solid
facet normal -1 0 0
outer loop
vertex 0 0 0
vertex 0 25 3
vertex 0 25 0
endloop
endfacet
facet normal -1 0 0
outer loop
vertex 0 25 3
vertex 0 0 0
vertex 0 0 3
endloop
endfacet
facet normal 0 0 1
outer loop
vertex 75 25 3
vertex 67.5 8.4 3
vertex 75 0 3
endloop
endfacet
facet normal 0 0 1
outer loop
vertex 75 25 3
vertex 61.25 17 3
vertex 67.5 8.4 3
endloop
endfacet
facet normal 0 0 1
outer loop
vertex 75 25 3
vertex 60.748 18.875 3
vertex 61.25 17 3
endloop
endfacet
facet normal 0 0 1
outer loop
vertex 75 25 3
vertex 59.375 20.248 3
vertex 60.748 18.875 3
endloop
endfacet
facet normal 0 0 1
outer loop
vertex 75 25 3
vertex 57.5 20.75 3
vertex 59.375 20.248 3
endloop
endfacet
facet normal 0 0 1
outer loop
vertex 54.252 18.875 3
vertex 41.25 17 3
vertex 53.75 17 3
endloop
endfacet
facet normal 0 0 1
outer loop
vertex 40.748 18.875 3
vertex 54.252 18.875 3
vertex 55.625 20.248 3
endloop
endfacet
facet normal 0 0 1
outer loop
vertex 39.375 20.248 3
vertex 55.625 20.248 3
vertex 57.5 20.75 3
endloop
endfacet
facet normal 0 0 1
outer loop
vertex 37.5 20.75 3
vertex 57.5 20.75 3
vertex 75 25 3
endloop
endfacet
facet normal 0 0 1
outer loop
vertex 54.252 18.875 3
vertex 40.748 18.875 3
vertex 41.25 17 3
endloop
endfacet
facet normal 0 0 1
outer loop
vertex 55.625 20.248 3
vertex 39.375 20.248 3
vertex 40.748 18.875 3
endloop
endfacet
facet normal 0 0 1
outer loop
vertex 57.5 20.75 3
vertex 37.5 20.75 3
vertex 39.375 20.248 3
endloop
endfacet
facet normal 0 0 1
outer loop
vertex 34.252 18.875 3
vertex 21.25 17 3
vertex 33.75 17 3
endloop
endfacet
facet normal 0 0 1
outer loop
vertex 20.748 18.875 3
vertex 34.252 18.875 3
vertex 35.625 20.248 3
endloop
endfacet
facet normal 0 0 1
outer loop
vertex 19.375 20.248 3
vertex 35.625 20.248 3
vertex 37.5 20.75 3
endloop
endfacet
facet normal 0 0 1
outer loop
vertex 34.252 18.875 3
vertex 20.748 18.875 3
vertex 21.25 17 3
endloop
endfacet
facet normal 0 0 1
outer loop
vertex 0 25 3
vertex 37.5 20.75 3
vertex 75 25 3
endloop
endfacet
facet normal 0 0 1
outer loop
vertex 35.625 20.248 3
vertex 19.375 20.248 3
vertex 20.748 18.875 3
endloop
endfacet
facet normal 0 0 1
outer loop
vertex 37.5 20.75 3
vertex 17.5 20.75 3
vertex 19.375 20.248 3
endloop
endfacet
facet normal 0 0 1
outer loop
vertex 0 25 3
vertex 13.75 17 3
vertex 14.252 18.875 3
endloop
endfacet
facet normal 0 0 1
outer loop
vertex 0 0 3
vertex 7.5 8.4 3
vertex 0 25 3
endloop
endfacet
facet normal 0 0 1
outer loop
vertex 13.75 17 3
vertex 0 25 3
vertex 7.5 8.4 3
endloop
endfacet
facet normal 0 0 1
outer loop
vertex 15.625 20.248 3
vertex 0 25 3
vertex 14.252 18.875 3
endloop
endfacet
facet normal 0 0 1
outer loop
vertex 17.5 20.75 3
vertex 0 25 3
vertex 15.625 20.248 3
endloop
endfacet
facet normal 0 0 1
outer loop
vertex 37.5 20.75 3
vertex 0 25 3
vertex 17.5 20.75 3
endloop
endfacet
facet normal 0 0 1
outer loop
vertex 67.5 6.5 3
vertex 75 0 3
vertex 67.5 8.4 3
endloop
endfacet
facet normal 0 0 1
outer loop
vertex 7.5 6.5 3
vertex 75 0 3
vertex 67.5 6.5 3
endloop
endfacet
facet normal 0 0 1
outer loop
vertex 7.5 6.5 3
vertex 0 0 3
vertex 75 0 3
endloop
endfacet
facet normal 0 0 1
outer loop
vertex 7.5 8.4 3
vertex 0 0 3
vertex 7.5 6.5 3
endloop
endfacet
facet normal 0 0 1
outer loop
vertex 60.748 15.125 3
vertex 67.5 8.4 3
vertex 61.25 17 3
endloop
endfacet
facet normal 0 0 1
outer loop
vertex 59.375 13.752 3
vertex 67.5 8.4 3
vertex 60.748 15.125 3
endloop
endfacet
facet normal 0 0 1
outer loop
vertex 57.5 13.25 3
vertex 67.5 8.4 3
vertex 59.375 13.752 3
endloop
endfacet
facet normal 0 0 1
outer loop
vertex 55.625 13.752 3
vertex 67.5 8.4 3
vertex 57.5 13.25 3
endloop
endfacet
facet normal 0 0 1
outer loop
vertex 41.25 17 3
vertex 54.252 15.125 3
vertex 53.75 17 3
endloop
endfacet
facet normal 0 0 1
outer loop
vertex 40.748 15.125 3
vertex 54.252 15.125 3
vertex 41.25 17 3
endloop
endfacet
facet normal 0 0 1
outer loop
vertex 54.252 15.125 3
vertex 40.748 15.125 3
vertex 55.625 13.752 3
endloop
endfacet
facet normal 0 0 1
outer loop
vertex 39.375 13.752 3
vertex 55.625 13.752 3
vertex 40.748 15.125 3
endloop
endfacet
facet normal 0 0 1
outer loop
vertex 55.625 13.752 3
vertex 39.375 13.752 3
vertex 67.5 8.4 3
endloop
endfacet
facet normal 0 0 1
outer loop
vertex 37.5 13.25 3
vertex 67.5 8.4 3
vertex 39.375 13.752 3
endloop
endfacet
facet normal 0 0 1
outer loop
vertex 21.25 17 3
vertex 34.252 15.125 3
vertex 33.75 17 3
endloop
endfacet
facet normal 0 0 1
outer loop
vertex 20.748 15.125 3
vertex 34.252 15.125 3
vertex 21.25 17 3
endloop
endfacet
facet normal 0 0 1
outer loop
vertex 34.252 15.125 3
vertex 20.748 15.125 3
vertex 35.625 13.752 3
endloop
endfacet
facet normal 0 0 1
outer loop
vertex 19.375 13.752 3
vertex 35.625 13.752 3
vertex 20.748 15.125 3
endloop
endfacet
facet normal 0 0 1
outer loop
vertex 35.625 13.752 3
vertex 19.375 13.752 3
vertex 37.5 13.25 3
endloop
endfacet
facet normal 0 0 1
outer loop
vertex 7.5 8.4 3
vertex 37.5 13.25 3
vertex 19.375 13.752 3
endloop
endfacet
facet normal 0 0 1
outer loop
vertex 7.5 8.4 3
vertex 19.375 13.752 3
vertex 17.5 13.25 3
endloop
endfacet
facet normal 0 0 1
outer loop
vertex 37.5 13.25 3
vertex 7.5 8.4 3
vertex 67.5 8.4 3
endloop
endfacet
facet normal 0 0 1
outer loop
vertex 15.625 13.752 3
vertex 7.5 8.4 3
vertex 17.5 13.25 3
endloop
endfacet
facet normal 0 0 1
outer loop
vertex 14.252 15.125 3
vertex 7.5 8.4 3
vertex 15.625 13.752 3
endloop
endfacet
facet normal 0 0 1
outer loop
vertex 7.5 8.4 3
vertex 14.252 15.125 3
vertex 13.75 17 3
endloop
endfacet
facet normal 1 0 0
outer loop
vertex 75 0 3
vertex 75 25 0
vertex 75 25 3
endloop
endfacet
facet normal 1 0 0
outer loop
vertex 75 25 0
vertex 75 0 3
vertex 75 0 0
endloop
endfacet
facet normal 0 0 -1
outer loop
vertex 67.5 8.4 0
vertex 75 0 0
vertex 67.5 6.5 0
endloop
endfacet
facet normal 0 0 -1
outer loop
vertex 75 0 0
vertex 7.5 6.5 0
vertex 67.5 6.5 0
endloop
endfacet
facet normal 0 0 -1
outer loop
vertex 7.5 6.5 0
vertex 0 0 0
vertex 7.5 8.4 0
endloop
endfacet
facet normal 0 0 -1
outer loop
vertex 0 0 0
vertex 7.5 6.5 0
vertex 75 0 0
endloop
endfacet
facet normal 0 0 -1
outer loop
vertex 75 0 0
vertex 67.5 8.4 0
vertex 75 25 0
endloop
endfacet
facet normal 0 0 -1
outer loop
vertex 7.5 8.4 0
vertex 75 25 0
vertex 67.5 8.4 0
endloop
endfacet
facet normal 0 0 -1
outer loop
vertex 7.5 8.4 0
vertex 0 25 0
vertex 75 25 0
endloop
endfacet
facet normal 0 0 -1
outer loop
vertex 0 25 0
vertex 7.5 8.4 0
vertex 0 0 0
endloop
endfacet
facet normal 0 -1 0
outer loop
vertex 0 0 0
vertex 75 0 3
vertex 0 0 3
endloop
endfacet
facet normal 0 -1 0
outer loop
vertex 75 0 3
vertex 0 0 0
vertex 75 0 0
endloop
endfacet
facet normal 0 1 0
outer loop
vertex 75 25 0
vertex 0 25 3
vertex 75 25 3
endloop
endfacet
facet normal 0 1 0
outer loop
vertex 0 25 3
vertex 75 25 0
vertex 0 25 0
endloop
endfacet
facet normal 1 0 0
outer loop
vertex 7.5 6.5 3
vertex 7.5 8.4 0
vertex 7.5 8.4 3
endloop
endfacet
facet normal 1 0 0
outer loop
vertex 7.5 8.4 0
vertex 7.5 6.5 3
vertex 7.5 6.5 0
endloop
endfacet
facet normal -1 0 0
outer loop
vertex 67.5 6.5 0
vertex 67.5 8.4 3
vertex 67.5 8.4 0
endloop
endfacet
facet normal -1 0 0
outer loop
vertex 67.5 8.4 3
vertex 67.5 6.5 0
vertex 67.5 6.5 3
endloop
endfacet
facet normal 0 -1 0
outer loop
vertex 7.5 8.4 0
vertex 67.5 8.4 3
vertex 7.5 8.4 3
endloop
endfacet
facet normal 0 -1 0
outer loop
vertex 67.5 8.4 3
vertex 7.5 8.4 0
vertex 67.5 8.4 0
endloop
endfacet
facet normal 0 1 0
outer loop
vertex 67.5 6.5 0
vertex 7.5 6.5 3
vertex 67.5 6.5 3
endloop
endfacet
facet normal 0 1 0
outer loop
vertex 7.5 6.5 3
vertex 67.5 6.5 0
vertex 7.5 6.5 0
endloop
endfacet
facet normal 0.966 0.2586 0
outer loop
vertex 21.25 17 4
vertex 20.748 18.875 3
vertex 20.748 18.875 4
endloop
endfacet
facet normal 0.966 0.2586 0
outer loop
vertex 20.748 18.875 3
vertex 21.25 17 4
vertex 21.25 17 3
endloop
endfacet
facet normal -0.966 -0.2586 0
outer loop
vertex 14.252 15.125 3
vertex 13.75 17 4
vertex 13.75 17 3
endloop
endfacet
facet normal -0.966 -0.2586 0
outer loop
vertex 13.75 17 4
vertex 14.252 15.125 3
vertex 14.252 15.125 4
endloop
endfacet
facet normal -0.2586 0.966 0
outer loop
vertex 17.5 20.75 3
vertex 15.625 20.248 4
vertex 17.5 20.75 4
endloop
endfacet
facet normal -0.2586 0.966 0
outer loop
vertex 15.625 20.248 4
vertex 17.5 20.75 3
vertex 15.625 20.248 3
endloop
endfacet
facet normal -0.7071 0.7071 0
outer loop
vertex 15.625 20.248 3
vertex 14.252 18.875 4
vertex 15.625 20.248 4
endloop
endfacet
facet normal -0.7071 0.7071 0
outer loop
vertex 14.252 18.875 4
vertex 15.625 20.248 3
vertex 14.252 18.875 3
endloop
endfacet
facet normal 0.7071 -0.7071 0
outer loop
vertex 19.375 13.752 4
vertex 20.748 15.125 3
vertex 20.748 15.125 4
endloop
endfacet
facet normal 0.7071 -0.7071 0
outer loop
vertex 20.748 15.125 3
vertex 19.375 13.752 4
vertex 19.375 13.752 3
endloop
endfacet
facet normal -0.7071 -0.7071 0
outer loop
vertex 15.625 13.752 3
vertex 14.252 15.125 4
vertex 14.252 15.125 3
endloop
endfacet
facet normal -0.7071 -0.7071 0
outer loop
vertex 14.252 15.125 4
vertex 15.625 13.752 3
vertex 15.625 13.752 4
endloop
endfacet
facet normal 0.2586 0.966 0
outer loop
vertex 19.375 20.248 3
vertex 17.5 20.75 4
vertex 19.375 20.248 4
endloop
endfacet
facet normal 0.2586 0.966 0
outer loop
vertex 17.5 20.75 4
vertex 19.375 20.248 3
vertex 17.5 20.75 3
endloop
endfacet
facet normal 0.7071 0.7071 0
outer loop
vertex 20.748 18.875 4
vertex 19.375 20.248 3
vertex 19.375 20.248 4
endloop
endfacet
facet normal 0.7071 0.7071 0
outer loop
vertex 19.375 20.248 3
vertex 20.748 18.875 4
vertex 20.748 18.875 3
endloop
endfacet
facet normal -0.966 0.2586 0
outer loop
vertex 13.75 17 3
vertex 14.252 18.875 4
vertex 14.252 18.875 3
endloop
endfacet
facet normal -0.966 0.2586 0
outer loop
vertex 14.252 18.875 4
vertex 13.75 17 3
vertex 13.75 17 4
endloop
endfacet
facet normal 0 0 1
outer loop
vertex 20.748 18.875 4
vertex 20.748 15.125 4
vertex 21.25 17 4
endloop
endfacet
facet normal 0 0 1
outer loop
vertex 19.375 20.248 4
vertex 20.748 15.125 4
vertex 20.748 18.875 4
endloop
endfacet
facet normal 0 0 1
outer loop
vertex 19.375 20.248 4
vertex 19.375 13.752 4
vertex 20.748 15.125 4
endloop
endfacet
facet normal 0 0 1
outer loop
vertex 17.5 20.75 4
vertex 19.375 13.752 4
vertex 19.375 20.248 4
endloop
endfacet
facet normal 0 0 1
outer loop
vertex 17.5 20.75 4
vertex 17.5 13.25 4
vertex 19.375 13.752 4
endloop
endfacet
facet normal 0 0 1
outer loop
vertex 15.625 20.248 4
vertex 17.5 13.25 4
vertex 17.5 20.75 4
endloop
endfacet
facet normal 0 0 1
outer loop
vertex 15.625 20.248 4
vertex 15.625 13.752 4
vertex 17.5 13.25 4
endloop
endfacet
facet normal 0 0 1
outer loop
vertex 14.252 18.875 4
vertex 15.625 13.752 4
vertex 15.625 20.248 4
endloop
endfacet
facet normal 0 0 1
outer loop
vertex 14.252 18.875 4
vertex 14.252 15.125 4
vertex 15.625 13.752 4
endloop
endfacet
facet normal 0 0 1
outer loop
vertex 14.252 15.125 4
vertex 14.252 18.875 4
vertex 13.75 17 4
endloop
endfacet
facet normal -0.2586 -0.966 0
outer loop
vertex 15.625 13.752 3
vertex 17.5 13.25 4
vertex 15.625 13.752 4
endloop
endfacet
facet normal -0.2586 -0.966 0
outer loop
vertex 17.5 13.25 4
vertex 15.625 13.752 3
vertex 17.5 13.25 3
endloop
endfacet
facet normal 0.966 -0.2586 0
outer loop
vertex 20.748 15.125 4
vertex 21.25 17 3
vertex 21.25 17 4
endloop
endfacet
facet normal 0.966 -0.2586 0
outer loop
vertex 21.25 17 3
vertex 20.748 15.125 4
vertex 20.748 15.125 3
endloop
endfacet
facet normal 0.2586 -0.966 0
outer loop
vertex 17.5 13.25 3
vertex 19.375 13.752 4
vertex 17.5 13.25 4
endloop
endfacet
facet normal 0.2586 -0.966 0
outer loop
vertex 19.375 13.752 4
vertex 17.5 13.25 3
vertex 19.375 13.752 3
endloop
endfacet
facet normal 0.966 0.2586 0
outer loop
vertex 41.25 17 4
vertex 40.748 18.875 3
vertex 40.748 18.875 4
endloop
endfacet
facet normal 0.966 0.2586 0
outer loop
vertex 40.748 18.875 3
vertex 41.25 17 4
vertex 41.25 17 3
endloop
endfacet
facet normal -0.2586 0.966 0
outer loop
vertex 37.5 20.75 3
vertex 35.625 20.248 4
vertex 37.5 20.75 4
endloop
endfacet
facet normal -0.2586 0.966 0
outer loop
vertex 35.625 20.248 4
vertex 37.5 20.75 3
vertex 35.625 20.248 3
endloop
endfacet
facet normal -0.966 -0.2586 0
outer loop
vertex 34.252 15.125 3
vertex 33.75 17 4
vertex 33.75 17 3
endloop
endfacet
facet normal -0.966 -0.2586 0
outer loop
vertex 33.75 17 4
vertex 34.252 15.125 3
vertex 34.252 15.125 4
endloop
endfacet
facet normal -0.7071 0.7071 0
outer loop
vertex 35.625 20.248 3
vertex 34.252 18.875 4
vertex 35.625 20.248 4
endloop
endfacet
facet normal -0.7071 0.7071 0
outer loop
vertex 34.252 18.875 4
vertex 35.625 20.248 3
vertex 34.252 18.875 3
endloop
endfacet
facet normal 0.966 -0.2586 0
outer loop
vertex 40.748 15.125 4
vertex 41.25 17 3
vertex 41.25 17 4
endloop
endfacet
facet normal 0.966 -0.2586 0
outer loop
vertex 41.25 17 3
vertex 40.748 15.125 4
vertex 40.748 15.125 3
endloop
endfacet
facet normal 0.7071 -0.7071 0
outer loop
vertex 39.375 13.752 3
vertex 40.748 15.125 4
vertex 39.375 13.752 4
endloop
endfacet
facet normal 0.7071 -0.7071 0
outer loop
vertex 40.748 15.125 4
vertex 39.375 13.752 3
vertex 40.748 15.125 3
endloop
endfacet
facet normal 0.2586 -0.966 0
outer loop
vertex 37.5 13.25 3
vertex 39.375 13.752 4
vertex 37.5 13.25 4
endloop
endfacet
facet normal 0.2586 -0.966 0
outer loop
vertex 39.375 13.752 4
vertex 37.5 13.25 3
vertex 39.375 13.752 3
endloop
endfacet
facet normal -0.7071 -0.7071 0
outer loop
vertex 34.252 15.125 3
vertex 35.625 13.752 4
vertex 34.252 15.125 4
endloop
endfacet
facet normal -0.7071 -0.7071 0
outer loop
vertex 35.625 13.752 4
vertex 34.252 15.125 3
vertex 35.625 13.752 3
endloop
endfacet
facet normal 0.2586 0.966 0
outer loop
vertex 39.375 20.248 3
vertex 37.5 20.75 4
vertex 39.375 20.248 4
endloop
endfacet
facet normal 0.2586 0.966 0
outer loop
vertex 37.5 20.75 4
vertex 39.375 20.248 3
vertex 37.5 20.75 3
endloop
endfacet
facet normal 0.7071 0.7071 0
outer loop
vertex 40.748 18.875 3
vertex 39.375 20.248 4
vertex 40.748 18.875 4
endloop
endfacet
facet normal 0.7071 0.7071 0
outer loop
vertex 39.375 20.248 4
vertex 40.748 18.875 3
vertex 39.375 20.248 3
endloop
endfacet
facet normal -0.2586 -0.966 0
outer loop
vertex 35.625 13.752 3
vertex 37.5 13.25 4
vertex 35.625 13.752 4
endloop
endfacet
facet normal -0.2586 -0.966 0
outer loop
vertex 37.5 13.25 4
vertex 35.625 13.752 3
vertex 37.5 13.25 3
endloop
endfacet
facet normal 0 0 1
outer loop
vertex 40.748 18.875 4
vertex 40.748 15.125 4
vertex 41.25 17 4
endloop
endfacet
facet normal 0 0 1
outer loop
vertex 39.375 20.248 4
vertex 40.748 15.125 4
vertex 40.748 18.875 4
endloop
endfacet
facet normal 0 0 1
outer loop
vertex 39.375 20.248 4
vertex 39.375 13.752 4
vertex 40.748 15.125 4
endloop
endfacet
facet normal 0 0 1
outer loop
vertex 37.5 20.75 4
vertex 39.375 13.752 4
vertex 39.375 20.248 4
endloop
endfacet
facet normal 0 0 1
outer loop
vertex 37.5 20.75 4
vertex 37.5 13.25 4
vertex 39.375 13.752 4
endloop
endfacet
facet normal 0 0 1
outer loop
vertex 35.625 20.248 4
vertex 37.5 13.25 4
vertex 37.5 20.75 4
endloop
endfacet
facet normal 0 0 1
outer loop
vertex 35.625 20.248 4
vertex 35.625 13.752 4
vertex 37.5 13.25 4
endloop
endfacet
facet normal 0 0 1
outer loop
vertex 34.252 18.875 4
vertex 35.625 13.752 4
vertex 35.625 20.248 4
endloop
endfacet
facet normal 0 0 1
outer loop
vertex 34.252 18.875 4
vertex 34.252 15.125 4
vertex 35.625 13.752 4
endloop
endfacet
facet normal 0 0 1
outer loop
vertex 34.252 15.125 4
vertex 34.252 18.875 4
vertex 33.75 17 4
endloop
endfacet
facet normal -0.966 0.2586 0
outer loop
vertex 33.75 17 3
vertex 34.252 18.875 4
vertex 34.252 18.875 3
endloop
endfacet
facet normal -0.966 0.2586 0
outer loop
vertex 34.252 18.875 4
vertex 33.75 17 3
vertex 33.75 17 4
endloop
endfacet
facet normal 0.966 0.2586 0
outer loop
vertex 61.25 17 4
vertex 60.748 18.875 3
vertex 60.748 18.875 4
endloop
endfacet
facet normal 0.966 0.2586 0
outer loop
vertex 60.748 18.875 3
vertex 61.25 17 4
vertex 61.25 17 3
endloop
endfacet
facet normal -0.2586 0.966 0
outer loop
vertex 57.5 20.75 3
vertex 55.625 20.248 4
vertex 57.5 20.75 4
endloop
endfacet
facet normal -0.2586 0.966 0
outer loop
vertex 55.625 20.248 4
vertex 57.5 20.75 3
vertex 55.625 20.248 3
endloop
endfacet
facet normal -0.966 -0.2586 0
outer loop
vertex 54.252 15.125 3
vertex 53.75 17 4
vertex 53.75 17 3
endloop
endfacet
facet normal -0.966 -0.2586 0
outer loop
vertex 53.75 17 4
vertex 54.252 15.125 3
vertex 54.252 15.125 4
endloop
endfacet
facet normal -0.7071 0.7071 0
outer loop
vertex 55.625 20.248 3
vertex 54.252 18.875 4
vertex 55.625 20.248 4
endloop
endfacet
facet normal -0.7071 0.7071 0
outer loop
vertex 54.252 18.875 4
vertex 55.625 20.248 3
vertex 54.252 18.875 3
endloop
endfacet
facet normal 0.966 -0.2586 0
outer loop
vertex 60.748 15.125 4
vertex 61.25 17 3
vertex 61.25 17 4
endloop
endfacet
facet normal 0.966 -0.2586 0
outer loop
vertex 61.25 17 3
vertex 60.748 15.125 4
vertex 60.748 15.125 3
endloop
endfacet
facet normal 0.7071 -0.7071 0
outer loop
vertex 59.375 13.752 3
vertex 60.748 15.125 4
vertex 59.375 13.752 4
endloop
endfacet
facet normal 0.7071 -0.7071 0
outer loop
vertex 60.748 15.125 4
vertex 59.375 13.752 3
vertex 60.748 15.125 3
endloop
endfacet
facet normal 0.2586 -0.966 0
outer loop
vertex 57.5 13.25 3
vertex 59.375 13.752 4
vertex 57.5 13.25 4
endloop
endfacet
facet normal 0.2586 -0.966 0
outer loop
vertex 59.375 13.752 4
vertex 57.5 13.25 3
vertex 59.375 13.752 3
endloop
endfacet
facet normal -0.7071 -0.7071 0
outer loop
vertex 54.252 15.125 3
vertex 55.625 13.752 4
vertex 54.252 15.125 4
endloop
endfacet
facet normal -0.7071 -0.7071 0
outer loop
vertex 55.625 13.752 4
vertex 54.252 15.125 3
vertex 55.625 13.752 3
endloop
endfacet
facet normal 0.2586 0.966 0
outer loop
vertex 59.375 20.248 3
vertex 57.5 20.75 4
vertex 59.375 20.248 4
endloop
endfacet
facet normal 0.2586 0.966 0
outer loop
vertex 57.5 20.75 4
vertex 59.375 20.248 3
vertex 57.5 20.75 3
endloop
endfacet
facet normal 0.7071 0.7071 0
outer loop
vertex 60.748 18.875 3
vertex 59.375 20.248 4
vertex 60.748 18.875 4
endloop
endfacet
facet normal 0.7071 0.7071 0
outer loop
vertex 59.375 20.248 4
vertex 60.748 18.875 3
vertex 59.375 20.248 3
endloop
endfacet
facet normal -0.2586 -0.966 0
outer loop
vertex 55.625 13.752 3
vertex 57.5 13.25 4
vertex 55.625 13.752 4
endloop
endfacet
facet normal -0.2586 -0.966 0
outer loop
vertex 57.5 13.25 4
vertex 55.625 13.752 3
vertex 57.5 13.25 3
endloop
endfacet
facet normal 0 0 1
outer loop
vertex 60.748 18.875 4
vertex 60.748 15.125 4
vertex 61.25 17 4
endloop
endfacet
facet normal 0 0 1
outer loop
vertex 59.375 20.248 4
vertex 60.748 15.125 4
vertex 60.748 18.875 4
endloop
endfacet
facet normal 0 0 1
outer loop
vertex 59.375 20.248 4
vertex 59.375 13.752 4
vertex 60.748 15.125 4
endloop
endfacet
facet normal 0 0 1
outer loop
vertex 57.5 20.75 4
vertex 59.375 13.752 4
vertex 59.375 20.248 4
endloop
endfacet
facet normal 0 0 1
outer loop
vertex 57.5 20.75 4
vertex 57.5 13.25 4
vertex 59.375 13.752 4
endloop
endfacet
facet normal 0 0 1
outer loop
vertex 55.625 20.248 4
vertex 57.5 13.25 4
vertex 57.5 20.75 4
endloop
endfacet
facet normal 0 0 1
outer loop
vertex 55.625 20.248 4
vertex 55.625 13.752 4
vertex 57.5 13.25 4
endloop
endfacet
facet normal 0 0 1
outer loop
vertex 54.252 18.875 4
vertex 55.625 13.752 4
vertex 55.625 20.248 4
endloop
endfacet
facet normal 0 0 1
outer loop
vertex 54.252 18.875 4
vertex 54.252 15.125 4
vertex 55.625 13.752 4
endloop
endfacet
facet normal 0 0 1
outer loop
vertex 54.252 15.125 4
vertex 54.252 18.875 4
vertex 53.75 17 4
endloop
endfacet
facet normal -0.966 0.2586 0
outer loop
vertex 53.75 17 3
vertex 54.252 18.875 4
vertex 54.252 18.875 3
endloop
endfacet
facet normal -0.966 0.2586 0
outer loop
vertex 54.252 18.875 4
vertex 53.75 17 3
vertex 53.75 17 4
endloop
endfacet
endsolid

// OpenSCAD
difference(){
    cube([75, 25,3]);
    translate([(75-60)/2,6.5,]) cube([60,1.9,3]);
}

translate([(75/2)-20,17,3]) cylinder(d=7.5, h=1);
translate([(75/2),17,3]) cylinder(d=7.5, h=1);
translate([(75/2)+20,17,3]) cylinder(d=7.5, h=1);
